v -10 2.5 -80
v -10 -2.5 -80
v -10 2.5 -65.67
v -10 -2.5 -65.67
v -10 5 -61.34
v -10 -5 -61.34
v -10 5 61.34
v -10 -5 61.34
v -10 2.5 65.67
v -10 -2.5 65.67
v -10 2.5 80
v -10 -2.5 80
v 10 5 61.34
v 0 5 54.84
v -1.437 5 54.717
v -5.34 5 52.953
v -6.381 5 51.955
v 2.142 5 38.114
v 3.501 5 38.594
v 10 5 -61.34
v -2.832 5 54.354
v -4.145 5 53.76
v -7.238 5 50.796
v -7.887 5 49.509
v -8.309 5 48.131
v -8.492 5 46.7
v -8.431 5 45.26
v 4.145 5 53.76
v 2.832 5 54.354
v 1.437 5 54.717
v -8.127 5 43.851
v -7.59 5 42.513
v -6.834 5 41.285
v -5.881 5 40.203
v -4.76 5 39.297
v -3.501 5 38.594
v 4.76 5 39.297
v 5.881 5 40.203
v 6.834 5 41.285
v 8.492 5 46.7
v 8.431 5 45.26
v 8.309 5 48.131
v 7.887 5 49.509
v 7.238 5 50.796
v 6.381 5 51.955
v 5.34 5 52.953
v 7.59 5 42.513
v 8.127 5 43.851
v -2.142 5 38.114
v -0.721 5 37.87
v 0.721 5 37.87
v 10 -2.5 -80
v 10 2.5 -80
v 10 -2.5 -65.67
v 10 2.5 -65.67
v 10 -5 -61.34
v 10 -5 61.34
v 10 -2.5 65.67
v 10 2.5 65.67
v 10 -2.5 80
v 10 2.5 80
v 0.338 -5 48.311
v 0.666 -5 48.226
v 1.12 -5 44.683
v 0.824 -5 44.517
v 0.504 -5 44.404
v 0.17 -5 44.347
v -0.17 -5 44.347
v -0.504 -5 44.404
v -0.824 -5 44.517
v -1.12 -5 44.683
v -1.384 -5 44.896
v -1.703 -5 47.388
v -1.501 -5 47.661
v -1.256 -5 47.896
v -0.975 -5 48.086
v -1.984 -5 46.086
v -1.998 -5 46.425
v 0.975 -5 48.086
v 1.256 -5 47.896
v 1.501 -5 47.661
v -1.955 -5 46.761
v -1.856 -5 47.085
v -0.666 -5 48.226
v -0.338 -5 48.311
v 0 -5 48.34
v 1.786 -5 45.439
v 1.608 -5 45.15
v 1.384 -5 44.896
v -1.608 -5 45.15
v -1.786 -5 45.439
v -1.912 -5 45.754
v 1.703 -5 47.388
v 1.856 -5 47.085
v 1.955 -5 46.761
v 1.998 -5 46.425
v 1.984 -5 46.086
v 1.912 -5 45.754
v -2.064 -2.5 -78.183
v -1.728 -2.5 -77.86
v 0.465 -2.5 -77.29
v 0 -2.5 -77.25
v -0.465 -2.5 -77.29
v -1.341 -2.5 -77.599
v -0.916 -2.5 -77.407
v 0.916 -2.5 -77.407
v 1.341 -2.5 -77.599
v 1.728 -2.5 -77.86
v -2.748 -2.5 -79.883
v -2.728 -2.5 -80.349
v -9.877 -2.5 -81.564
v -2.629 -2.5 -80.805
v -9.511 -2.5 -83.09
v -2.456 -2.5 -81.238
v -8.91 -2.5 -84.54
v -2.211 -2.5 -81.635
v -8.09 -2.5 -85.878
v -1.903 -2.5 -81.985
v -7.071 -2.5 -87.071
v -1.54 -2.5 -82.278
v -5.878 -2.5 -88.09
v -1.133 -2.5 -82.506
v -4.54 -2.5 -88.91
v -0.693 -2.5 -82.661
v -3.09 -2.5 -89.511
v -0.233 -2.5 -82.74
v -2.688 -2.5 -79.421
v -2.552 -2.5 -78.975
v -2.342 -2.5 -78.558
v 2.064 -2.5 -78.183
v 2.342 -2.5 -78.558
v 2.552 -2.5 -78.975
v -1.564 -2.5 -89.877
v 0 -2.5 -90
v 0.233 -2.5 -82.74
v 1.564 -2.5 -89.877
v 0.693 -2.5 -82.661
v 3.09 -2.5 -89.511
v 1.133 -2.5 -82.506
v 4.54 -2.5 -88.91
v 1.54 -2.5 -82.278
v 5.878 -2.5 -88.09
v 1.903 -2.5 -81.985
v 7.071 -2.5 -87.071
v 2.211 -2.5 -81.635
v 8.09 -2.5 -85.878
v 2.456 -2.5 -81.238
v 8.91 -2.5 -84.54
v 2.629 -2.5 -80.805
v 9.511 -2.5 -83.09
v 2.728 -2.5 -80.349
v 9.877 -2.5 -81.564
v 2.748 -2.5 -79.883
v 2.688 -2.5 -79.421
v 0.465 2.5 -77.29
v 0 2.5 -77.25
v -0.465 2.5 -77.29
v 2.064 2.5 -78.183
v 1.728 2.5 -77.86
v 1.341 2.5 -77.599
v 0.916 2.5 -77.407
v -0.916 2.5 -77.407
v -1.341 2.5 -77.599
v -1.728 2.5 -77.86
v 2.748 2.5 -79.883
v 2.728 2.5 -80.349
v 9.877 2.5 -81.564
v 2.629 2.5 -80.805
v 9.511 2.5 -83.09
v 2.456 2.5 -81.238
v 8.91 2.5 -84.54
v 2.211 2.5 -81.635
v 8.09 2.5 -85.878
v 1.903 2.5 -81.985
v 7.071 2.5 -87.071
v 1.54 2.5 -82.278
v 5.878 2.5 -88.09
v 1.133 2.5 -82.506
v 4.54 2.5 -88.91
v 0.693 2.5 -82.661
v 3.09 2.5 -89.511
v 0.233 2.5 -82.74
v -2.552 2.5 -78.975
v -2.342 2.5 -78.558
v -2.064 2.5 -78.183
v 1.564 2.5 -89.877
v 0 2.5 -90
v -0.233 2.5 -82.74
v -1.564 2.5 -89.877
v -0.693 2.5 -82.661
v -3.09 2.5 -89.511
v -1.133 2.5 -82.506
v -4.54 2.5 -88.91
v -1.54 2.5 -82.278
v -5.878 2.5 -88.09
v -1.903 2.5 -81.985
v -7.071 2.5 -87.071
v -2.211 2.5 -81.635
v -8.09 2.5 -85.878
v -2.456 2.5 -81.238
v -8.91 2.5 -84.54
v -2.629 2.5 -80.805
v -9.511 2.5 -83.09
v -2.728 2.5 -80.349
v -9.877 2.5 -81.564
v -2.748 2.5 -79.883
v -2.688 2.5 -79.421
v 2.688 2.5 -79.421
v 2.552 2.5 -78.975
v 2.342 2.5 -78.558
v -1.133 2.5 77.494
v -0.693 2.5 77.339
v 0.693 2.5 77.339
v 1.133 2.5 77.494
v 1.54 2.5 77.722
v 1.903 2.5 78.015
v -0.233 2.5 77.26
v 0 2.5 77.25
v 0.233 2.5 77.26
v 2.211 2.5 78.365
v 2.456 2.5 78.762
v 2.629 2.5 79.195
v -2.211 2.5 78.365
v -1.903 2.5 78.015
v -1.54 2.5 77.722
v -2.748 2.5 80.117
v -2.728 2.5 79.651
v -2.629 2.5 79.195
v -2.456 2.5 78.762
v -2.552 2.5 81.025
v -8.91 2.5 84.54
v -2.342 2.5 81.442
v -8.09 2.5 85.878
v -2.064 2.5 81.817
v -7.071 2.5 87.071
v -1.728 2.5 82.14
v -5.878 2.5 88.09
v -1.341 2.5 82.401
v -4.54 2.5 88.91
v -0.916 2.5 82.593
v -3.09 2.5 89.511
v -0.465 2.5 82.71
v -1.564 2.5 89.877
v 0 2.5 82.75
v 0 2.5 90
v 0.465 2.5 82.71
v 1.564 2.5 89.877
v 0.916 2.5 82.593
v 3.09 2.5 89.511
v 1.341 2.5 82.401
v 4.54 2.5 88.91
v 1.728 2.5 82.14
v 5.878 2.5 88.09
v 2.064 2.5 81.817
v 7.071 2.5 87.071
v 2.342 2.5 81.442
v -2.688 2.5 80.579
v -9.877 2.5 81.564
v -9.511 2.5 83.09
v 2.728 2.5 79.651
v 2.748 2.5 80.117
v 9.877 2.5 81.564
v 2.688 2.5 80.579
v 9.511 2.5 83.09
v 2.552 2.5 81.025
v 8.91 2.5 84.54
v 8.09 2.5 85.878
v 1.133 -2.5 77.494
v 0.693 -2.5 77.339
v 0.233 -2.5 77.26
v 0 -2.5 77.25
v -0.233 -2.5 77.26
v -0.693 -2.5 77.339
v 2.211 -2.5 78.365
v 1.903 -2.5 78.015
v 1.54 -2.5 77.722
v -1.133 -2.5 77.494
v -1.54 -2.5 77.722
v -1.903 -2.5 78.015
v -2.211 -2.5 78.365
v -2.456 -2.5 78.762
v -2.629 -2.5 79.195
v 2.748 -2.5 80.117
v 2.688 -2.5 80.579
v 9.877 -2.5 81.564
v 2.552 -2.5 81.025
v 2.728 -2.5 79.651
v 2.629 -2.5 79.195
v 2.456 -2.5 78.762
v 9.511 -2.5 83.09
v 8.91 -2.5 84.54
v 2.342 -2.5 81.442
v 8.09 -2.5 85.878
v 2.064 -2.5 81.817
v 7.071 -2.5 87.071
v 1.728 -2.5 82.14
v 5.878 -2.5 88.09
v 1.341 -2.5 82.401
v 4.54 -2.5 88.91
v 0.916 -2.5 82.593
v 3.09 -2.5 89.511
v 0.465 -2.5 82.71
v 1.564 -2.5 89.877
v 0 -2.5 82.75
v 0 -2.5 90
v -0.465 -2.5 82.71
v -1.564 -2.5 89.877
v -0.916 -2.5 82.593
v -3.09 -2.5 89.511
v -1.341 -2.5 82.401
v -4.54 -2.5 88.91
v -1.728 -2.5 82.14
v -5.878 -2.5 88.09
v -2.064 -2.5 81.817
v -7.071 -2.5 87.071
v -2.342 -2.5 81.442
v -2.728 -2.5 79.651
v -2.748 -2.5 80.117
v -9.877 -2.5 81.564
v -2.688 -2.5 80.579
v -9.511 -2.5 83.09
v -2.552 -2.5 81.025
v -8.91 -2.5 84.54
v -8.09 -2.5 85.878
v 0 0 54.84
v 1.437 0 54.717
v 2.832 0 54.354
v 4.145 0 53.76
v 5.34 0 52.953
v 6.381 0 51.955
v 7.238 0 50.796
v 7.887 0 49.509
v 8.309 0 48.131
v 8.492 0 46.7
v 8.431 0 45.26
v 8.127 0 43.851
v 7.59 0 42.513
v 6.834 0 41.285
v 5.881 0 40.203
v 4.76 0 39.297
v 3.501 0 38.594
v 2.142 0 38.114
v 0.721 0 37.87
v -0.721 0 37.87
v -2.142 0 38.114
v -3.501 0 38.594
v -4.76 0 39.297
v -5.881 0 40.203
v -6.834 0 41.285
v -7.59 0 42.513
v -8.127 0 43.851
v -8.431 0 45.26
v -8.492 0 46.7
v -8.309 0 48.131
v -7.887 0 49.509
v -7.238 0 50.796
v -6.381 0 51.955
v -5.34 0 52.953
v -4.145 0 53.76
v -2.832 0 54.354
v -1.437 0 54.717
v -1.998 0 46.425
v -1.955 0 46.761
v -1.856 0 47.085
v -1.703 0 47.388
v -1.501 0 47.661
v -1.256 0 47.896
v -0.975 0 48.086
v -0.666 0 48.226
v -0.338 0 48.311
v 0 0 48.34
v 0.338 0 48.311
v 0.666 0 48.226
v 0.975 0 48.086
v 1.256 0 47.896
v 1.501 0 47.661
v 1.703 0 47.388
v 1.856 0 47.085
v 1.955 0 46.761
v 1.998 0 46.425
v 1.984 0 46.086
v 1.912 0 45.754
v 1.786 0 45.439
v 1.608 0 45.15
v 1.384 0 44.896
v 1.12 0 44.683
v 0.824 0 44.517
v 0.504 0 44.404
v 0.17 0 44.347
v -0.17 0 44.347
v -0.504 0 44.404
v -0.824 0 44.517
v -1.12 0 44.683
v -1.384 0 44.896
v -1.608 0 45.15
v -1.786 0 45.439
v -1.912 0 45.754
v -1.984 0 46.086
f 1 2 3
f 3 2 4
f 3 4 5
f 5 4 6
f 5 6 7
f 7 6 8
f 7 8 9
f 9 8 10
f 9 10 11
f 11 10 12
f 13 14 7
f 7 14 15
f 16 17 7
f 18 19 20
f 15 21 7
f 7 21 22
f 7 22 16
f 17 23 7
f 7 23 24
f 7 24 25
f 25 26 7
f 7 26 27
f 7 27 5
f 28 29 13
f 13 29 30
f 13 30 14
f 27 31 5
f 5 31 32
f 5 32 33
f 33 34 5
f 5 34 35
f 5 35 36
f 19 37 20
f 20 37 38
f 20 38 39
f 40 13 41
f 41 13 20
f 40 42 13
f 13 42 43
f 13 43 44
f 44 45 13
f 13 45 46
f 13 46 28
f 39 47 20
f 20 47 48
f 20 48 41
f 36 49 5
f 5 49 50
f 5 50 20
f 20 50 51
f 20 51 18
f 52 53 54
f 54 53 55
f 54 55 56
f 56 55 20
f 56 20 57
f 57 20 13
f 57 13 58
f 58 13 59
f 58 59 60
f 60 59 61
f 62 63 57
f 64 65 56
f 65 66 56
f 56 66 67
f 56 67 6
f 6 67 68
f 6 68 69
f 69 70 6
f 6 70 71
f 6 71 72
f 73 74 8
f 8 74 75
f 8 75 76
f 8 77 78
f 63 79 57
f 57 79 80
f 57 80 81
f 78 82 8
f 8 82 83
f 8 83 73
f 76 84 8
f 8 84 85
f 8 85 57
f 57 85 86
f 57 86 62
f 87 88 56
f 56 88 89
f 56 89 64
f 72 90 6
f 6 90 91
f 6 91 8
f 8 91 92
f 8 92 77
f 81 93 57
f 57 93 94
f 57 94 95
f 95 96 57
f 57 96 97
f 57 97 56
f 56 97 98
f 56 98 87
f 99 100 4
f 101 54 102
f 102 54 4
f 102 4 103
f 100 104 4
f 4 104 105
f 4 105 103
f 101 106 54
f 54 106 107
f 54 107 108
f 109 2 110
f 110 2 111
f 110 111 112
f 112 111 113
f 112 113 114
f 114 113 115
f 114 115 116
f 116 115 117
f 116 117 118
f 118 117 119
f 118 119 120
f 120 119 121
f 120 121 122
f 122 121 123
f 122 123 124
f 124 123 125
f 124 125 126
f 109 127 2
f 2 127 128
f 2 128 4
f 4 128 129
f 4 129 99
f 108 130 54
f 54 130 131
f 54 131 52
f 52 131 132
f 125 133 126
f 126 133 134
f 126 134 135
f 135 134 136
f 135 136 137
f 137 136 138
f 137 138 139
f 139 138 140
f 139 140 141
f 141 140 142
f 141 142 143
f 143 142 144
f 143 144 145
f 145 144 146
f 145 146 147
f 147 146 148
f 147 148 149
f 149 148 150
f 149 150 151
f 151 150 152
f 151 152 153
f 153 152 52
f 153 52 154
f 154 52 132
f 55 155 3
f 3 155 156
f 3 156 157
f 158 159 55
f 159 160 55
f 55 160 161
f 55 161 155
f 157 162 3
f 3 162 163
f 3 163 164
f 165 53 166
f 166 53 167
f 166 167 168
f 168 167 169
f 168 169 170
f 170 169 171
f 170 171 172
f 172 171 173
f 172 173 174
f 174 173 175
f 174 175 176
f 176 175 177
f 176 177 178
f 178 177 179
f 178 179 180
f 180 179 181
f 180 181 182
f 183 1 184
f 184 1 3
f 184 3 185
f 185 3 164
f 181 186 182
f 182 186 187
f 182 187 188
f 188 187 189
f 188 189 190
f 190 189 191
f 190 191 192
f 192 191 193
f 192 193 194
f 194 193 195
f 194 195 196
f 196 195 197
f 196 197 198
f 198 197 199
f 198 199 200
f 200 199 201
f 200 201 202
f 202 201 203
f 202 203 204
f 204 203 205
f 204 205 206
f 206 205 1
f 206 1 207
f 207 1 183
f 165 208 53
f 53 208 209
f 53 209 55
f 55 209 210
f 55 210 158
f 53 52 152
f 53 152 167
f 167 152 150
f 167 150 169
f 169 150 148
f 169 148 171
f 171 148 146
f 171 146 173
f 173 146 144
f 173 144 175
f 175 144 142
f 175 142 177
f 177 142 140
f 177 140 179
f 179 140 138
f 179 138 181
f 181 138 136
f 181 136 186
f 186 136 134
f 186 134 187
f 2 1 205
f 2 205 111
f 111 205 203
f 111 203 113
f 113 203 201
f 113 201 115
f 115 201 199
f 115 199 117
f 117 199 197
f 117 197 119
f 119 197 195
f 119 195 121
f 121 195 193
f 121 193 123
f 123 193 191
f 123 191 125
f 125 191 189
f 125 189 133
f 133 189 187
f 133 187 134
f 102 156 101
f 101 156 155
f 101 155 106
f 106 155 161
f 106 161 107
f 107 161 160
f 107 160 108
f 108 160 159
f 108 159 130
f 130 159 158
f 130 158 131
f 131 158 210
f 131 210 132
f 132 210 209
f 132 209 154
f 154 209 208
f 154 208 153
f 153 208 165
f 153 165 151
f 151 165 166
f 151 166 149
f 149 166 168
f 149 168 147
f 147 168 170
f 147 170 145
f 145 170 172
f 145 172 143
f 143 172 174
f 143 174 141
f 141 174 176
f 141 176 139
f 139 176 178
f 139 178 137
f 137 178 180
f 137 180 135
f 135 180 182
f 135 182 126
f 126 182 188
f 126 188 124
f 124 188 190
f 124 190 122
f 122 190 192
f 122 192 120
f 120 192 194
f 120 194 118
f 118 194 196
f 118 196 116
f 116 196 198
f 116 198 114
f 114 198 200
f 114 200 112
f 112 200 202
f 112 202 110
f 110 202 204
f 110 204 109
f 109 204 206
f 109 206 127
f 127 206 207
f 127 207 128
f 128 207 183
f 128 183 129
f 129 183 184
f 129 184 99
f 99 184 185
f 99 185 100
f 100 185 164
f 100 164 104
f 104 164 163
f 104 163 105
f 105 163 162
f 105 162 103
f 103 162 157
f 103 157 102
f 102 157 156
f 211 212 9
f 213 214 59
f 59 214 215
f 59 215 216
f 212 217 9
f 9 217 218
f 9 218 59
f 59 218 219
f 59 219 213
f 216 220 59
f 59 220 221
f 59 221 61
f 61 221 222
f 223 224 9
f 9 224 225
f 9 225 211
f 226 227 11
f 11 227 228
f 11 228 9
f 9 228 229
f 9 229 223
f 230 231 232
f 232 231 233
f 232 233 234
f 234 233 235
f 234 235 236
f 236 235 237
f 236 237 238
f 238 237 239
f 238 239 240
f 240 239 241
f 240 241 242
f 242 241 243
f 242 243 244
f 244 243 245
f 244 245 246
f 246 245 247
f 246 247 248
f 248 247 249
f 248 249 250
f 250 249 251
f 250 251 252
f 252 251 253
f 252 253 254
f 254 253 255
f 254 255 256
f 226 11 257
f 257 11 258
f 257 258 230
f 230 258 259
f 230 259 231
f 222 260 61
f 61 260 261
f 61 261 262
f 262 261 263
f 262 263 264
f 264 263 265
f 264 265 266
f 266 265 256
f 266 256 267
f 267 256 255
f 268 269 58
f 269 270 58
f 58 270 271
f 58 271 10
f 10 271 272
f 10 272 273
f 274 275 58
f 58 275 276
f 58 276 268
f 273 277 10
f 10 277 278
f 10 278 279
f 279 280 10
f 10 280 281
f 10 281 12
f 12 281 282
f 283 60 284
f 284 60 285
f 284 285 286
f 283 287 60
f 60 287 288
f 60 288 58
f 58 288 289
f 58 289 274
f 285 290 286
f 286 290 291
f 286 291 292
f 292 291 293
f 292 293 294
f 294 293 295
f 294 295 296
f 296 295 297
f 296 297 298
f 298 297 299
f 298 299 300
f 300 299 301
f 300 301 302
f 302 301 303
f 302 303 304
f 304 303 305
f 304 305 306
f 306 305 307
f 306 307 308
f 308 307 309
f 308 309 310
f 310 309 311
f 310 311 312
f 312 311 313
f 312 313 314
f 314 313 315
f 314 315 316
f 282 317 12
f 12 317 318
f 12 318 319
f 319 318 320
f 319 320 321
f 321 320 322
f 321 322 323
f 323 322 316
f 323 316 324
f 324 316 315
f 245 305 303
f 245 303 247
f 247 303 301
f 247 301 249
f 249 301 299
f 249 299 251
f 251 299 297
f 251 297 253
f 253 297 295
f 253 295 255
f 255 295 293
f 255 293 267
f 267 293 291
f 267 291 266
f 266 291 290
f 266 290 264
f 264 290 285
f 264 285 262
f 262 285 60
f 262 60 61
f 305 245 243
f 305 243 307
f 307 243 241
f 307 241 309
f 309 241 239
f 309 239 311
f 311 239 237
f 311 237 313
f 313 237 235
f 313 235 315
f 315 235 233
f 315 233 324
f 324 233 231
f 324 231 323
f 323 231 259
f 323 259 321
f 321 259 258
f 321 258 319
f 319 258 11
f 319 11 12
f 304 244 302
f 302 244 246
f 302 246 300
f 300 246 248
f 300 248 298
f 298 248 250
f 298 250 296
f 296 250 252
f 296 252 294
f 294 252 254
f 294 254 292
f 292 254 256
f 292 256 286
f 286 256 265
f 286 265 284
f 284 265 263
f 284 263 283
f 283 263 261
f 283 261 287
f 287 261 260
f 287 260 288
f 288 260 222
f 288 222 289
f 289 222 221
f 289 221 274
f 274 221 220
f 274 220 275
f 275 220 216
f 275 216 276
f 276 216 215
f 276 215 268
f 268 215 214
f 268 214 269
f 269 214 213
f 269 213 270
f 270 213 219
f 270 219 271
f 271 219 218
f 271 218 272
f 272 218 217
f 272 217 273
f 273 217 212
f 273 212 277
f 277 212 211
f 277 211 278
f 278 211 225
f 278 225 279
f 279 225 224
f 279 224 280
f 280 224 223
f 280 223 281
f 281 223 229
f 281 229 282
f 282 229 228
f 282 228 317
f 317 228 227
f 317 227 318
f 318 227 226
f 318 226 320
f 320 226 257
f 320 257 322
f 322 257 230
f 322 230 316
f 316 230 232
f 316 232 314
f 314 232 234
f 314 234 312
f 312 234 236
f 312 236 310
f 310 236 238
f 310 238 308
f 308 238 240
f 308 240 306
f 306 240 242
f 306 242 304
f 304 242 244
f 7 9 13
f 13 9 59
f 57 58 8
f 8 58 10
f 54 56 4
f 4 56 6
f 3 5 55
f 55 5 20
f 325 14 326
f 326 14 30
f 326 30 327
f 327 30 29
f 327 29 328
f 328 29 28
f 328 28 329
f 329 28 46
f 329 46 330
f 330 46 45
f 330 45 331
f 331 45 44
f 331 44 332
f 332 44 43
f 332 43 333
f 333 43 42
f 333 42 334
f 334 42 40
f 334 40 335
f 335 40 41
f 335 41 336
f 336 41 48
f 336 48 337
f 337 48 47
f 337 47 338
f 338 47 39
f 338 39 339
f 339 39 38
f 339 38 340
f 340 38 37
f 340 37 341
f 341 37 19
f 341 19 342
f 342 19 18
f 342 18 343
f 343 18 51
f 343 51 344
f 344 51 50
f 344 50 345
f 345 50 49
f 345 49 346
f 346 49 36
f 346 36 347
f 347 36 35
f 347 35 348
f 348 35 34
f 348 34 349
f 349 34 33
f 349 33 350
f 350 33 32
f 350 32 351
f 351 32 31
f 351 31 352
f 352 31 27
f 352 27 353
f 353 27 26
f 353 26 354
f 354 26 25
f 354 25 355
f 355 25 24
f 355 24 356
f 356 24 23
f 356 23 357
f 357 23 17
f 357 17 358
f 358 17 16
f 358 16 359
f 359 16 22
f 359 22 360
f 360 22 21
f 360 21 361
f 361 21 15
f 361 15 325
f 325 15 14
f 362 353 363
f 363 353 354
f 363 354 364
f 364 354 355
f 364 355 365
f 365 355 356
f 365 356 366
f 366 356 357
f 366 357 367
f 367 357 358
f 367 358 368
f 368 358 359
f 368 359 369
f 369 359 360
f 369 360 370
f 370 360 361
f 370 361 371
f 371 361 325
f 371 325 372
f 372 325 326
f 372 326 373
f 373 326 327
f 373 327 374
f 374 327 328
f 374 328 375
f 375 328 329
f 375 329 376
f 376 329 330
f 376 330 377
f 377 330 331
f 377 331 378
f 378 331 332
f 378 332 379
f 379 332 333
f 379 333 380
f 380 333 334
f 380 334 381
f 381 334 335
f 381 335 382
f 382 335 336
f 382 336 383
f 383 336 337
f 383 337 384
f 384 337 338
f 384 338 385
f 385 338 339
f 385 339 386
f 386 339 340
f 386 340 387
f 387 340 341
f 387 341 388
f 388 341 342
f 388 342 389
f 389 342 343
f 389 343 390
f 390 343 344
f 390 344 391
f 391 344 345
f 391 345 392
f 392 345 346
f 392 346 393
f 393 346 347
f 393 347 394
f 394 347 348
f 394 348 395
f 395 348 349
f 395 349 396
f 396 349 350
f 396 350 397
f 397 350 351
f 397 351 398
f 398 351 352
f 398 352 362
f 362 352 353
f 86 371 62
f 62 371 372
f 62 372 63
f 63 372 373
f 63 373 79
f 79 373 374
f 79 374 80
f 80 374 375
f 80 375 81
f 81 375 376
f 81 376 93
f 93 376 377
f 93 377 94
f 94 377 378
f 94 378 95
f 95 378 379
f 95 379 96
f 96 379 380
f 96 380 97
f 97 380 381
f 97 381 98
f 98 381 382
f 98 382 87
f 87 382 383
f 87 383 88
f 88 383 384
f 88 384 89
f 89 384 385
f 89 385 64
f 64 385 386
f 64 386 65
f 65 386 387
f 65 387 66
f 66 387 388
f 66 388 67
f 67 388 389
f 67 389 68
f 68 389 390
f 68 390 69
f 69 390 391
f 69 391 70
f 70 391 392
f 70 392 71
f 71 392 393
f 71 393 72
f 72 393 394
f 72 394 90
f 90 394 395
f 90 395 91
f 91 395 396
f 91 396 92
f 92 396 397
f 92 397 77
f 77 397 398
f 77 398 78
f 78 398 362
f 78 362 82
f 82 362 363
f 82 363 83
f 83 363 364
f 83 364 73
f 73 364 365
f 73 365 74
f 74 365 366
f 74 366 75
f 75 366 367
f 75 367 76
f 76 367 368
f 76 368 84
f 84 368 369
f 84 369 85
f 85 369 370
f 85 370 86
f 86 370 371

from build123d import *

# Parameters (mm, degrees)
BOSS_EXTRUDE1_DEPTH      = 70
BOSS_EXTRUDE1_DEPTH_BACK = 70
SKETCH1_W                = 20
SKETCH1_H                = 10
SKETCH3_W                = 20
SKETCH3_H                = 5
BOSS_EXTRUDE2_DEPTH      = 20
FILLET1_R                = 10
SKETCH4_R                = 2.75
CUT_EXTRUDE1_DEPTH       = 91.863909227
FILLET1_OF_MIRROR1_R     = 10
CHAMFER1_SIZE            = 8.660254038
CHAMFER1_SIZE_2          = 5
SKETCH5_R                = 8.5
CUT_EXTRUDE2_DEPTH       = 5
CUT_EXTRUDE3_DEPTH       = 91.691785736
CUT_EXTRUDE3_DEPTH_BACK  = 91.691785736
SKETCH6_R                = 2


# Some blends are built 0.0001 mm under size
with BuildPart() as part:
    # Sketch1 → Boss-Extrude1 (new, two sides: drawn at the far end of the back side and taken through both)
    with BuildSketch(Plane.XY.offset(-BOSS_EXTRUDE1_DEPTH_BACK)):
        Rectangle(SKETCH1_W, SKETCH1_H)
    extrude(amount=BOSS_EXTRUDE1_DEPTH + BOSS_EXTRUDE1_DEPTH_BACK)

    # Sketch3 → Boss-Extrude2 (add)
    with BuildSketch(Plane(origin=(0, 0, -70), x_dir=(-1, 0, 0), z_dir=(0, 0, -1))):
        Rectangle(SKETCH3_W, SKETCH3_H)
    boss_extrude2 = extrude(amount=BOSS_EXTRUDE2_DEPTH)

    # Fillet1
    fillet1_edges = [part.edges().sort_by_distance(p)[0] for p in [
        (-10, 0, -90),
        (10, 0, -90),
    ]]
    fillet(fillet1_edges, radius=FILLET1_R - 0.0001)  # a hair under: the kernel refuses the full size

    # Sketch4 → Cut-Extrude1 (cut, through all)
    with BuildSketch(Plane(origin=(0, 2.5, 0), x_dir=(1, 0, 0), z_dir=(0, 1, 0))):
        with Locations(Location((0, 80, 0), (0, 0, 270))):
            Circle(SKETCH4_R)
    cut_extrude1 = extrude(amount=-CUT_EXTRUDE1_DEPTH, mode=Mode.SUBTRACT)

    # Mirror1: Boss-Extrude2, Cut-Extrude1 across plane
    add(boss_extrude2.mirror(Plane.XY))
    add(cut_extrude1.mirror(Plane.XY), mode=Mode.SUBTRACT)

    # Fillet1 of Mirror1
    fillet1_of_mirror1_edges = [part.edges().sort_by_distance(p)[0] for p in [
        (-10, 0, 90),
        (10, 0, 90),
    ]]
    fillet(fillet1_of_mirror1_edges, radius=FILLET1_OF_MIRROR1_R - 0.0001)  # a hair under: the kernel refuses the full size

    # Chamfer1
    # the kernel refuses this chamfer: 8.660254038, 5 mm, written as the material it takes off along each edge
    with BuildSketch(Plane(origin=(32.404819853, 5, -70), x_dir=(0, 0.019326765612700594, 0.999813220622208), z_dir=(-1, 0, 0))) as chamfer1_piece_1_section:
        Polygon((CHAMFER1_SIZE * 0.999813220604, -CHAMFER1_SIZE * 0.0193267656124), (-CHAMFER1_SIZE_2 * 0.0193267656127, -CHAMFER1_SIZE_2 * 0.999813220622), (0, 0), align=None)
    chamfer1_piece_1 = extrude(amount=64.809639706, mode=Mode.PRIVATE)
    chamfer1_piece_1 = split(chamfer1_piece_1, bisect_by=Plane(origin=(0, 2.5, -66.539331058), z_dir=(0, 1, 0)), keep=Keep.TOP, mode=Mode.PRIVATE)
    add(chamfer1_piece_1, mode=Mode.SUBTRACT)
    with BuildSketch(Plane(origin=(-32.404819853, -5, -70), x_dir=(0, -0.019326765612700594, 0.999813220622208), z_dir=(1, 0, 0))) as chamfer1_piece_2_section:
        Polygon((CHAMFER1_SIZE * 0.999813220604, -CHAMFER1_SIZE * 0.0193267656124), (-CHAMFER1_SIZE_2 * 0.0193267656127, -CHAMFER1_SIZE_2 * 0.999813220622), (0, 0), align=None)
    chamfer1_piece_2 = extrude(amount=64.809639706, mode=Mode.PRIVATE)
    chamfer1_piece_2 = split(chamfer1_piece_2, bisect_by=Plane(origin=(0, -2.5, -66.539331058), z_dir=(0, -1, 0)), keep=Keep.TOP, mode=Mode.PRIVATE)
    add(chamfer1_piece_2, mode=Mode.SUBTRACT)
    with BuildSketch(Plane(origin=(-32.404819853, -5, 70), x_dir=(0, 0.9983227437537926, 0.05789386240267045), z_dir=(1, 0, 0))) as chamfer1_piece_3_section:
        Polygon((CHAMFER1_SIZE_2 * 0.998322743754, -CHAMFER1_SIZE_2 * 0.0578938624027), (-CHAMFER1_SIZE * 0.0578938624016, -CHAMFER1_SIZE * 0.998322743736), (0, 0), align=None)
    chamfer1_piece_3 = extrude(amount=64.809639706, mode=Mode.PRIVATE)
    chamfer1_piece_3 = split(chamfer1_piece_3, bisect_by=Plane(origin=(0, -2.5, 66.539331058), z_dir=(0, -1, 0)), keep=Keep.TOP, mode=Mode.PRIVATE)
    add(chamfer1_piece_3, mode=Mode.SUBTRACT)
    with BuildSketch(Plane(origin=(32.404819853, 5, 70), x_dir=(0, -0.9983227437537926, 0.05789386240267045), z_dir=(-1, 0, 0))) as chamfer1_piece_4_section:
        Polygon((CHAMFER1_SIZE_2 * 0.998322743754, -CHAMFER1_SIZE_2 * 0.0578938624027), (-CHAMFER1_SIZE * 0.0578938624016, -CHAMFER1_SIZE * 0.998322743736), (0, 0), align=None)
    chamfer1_piece_4 = extrude(amount=64.809639706, mode=Mode.PRIVATE)
    chamfer1_piece_4 = split(chamfer1_piece_4, bisect_by=Plane(origin=(0, 2.5, 66.539331058), z_dir=(0, 1, 0)), keep=Keep.TOP, mode=Mode.PRIVATE)
    add(chamfer1_piece_4, mode=Mode.SUBTRACT)

    # Sketch5 → Cut-Extrude2 (cut)
    with BuildSketch(Plane(origin=(0, 5, 0), x_dir=(1, 0, 0), z_dir=(0, 1, 0))):
        with Locations(Location((0, -46.339745962, 0), (0, 0, 270))):
            Circle(SKETCH5_R)
    extrude(amount=-CUT_EXTRUDE2_DEPTH, mode=Mode.SUBTRACT)

    # Sketch6 → Cut-Extrude3 (cut, two sides: drawn at the far end of the back side and taken through both)
    with BuildSketch(Plane(origin=(0, 0, 0), x_dir=(1, 0, 0), z_dir=(0, 1, 0)).offset(-CUT_EXTRUDE3_DEPTH_BACK)):
        with Locations(Location((0, -46.339745962, 0), (0, 0, 270))):
            Circle(SKETCH6_R)
    extrude(amount=CUT_EXTRUDE3_DEPTH + CUT_EXTRUDE3_DEPTH_BACK, mode=Mode.SUBTRACT)


solid = part.part
